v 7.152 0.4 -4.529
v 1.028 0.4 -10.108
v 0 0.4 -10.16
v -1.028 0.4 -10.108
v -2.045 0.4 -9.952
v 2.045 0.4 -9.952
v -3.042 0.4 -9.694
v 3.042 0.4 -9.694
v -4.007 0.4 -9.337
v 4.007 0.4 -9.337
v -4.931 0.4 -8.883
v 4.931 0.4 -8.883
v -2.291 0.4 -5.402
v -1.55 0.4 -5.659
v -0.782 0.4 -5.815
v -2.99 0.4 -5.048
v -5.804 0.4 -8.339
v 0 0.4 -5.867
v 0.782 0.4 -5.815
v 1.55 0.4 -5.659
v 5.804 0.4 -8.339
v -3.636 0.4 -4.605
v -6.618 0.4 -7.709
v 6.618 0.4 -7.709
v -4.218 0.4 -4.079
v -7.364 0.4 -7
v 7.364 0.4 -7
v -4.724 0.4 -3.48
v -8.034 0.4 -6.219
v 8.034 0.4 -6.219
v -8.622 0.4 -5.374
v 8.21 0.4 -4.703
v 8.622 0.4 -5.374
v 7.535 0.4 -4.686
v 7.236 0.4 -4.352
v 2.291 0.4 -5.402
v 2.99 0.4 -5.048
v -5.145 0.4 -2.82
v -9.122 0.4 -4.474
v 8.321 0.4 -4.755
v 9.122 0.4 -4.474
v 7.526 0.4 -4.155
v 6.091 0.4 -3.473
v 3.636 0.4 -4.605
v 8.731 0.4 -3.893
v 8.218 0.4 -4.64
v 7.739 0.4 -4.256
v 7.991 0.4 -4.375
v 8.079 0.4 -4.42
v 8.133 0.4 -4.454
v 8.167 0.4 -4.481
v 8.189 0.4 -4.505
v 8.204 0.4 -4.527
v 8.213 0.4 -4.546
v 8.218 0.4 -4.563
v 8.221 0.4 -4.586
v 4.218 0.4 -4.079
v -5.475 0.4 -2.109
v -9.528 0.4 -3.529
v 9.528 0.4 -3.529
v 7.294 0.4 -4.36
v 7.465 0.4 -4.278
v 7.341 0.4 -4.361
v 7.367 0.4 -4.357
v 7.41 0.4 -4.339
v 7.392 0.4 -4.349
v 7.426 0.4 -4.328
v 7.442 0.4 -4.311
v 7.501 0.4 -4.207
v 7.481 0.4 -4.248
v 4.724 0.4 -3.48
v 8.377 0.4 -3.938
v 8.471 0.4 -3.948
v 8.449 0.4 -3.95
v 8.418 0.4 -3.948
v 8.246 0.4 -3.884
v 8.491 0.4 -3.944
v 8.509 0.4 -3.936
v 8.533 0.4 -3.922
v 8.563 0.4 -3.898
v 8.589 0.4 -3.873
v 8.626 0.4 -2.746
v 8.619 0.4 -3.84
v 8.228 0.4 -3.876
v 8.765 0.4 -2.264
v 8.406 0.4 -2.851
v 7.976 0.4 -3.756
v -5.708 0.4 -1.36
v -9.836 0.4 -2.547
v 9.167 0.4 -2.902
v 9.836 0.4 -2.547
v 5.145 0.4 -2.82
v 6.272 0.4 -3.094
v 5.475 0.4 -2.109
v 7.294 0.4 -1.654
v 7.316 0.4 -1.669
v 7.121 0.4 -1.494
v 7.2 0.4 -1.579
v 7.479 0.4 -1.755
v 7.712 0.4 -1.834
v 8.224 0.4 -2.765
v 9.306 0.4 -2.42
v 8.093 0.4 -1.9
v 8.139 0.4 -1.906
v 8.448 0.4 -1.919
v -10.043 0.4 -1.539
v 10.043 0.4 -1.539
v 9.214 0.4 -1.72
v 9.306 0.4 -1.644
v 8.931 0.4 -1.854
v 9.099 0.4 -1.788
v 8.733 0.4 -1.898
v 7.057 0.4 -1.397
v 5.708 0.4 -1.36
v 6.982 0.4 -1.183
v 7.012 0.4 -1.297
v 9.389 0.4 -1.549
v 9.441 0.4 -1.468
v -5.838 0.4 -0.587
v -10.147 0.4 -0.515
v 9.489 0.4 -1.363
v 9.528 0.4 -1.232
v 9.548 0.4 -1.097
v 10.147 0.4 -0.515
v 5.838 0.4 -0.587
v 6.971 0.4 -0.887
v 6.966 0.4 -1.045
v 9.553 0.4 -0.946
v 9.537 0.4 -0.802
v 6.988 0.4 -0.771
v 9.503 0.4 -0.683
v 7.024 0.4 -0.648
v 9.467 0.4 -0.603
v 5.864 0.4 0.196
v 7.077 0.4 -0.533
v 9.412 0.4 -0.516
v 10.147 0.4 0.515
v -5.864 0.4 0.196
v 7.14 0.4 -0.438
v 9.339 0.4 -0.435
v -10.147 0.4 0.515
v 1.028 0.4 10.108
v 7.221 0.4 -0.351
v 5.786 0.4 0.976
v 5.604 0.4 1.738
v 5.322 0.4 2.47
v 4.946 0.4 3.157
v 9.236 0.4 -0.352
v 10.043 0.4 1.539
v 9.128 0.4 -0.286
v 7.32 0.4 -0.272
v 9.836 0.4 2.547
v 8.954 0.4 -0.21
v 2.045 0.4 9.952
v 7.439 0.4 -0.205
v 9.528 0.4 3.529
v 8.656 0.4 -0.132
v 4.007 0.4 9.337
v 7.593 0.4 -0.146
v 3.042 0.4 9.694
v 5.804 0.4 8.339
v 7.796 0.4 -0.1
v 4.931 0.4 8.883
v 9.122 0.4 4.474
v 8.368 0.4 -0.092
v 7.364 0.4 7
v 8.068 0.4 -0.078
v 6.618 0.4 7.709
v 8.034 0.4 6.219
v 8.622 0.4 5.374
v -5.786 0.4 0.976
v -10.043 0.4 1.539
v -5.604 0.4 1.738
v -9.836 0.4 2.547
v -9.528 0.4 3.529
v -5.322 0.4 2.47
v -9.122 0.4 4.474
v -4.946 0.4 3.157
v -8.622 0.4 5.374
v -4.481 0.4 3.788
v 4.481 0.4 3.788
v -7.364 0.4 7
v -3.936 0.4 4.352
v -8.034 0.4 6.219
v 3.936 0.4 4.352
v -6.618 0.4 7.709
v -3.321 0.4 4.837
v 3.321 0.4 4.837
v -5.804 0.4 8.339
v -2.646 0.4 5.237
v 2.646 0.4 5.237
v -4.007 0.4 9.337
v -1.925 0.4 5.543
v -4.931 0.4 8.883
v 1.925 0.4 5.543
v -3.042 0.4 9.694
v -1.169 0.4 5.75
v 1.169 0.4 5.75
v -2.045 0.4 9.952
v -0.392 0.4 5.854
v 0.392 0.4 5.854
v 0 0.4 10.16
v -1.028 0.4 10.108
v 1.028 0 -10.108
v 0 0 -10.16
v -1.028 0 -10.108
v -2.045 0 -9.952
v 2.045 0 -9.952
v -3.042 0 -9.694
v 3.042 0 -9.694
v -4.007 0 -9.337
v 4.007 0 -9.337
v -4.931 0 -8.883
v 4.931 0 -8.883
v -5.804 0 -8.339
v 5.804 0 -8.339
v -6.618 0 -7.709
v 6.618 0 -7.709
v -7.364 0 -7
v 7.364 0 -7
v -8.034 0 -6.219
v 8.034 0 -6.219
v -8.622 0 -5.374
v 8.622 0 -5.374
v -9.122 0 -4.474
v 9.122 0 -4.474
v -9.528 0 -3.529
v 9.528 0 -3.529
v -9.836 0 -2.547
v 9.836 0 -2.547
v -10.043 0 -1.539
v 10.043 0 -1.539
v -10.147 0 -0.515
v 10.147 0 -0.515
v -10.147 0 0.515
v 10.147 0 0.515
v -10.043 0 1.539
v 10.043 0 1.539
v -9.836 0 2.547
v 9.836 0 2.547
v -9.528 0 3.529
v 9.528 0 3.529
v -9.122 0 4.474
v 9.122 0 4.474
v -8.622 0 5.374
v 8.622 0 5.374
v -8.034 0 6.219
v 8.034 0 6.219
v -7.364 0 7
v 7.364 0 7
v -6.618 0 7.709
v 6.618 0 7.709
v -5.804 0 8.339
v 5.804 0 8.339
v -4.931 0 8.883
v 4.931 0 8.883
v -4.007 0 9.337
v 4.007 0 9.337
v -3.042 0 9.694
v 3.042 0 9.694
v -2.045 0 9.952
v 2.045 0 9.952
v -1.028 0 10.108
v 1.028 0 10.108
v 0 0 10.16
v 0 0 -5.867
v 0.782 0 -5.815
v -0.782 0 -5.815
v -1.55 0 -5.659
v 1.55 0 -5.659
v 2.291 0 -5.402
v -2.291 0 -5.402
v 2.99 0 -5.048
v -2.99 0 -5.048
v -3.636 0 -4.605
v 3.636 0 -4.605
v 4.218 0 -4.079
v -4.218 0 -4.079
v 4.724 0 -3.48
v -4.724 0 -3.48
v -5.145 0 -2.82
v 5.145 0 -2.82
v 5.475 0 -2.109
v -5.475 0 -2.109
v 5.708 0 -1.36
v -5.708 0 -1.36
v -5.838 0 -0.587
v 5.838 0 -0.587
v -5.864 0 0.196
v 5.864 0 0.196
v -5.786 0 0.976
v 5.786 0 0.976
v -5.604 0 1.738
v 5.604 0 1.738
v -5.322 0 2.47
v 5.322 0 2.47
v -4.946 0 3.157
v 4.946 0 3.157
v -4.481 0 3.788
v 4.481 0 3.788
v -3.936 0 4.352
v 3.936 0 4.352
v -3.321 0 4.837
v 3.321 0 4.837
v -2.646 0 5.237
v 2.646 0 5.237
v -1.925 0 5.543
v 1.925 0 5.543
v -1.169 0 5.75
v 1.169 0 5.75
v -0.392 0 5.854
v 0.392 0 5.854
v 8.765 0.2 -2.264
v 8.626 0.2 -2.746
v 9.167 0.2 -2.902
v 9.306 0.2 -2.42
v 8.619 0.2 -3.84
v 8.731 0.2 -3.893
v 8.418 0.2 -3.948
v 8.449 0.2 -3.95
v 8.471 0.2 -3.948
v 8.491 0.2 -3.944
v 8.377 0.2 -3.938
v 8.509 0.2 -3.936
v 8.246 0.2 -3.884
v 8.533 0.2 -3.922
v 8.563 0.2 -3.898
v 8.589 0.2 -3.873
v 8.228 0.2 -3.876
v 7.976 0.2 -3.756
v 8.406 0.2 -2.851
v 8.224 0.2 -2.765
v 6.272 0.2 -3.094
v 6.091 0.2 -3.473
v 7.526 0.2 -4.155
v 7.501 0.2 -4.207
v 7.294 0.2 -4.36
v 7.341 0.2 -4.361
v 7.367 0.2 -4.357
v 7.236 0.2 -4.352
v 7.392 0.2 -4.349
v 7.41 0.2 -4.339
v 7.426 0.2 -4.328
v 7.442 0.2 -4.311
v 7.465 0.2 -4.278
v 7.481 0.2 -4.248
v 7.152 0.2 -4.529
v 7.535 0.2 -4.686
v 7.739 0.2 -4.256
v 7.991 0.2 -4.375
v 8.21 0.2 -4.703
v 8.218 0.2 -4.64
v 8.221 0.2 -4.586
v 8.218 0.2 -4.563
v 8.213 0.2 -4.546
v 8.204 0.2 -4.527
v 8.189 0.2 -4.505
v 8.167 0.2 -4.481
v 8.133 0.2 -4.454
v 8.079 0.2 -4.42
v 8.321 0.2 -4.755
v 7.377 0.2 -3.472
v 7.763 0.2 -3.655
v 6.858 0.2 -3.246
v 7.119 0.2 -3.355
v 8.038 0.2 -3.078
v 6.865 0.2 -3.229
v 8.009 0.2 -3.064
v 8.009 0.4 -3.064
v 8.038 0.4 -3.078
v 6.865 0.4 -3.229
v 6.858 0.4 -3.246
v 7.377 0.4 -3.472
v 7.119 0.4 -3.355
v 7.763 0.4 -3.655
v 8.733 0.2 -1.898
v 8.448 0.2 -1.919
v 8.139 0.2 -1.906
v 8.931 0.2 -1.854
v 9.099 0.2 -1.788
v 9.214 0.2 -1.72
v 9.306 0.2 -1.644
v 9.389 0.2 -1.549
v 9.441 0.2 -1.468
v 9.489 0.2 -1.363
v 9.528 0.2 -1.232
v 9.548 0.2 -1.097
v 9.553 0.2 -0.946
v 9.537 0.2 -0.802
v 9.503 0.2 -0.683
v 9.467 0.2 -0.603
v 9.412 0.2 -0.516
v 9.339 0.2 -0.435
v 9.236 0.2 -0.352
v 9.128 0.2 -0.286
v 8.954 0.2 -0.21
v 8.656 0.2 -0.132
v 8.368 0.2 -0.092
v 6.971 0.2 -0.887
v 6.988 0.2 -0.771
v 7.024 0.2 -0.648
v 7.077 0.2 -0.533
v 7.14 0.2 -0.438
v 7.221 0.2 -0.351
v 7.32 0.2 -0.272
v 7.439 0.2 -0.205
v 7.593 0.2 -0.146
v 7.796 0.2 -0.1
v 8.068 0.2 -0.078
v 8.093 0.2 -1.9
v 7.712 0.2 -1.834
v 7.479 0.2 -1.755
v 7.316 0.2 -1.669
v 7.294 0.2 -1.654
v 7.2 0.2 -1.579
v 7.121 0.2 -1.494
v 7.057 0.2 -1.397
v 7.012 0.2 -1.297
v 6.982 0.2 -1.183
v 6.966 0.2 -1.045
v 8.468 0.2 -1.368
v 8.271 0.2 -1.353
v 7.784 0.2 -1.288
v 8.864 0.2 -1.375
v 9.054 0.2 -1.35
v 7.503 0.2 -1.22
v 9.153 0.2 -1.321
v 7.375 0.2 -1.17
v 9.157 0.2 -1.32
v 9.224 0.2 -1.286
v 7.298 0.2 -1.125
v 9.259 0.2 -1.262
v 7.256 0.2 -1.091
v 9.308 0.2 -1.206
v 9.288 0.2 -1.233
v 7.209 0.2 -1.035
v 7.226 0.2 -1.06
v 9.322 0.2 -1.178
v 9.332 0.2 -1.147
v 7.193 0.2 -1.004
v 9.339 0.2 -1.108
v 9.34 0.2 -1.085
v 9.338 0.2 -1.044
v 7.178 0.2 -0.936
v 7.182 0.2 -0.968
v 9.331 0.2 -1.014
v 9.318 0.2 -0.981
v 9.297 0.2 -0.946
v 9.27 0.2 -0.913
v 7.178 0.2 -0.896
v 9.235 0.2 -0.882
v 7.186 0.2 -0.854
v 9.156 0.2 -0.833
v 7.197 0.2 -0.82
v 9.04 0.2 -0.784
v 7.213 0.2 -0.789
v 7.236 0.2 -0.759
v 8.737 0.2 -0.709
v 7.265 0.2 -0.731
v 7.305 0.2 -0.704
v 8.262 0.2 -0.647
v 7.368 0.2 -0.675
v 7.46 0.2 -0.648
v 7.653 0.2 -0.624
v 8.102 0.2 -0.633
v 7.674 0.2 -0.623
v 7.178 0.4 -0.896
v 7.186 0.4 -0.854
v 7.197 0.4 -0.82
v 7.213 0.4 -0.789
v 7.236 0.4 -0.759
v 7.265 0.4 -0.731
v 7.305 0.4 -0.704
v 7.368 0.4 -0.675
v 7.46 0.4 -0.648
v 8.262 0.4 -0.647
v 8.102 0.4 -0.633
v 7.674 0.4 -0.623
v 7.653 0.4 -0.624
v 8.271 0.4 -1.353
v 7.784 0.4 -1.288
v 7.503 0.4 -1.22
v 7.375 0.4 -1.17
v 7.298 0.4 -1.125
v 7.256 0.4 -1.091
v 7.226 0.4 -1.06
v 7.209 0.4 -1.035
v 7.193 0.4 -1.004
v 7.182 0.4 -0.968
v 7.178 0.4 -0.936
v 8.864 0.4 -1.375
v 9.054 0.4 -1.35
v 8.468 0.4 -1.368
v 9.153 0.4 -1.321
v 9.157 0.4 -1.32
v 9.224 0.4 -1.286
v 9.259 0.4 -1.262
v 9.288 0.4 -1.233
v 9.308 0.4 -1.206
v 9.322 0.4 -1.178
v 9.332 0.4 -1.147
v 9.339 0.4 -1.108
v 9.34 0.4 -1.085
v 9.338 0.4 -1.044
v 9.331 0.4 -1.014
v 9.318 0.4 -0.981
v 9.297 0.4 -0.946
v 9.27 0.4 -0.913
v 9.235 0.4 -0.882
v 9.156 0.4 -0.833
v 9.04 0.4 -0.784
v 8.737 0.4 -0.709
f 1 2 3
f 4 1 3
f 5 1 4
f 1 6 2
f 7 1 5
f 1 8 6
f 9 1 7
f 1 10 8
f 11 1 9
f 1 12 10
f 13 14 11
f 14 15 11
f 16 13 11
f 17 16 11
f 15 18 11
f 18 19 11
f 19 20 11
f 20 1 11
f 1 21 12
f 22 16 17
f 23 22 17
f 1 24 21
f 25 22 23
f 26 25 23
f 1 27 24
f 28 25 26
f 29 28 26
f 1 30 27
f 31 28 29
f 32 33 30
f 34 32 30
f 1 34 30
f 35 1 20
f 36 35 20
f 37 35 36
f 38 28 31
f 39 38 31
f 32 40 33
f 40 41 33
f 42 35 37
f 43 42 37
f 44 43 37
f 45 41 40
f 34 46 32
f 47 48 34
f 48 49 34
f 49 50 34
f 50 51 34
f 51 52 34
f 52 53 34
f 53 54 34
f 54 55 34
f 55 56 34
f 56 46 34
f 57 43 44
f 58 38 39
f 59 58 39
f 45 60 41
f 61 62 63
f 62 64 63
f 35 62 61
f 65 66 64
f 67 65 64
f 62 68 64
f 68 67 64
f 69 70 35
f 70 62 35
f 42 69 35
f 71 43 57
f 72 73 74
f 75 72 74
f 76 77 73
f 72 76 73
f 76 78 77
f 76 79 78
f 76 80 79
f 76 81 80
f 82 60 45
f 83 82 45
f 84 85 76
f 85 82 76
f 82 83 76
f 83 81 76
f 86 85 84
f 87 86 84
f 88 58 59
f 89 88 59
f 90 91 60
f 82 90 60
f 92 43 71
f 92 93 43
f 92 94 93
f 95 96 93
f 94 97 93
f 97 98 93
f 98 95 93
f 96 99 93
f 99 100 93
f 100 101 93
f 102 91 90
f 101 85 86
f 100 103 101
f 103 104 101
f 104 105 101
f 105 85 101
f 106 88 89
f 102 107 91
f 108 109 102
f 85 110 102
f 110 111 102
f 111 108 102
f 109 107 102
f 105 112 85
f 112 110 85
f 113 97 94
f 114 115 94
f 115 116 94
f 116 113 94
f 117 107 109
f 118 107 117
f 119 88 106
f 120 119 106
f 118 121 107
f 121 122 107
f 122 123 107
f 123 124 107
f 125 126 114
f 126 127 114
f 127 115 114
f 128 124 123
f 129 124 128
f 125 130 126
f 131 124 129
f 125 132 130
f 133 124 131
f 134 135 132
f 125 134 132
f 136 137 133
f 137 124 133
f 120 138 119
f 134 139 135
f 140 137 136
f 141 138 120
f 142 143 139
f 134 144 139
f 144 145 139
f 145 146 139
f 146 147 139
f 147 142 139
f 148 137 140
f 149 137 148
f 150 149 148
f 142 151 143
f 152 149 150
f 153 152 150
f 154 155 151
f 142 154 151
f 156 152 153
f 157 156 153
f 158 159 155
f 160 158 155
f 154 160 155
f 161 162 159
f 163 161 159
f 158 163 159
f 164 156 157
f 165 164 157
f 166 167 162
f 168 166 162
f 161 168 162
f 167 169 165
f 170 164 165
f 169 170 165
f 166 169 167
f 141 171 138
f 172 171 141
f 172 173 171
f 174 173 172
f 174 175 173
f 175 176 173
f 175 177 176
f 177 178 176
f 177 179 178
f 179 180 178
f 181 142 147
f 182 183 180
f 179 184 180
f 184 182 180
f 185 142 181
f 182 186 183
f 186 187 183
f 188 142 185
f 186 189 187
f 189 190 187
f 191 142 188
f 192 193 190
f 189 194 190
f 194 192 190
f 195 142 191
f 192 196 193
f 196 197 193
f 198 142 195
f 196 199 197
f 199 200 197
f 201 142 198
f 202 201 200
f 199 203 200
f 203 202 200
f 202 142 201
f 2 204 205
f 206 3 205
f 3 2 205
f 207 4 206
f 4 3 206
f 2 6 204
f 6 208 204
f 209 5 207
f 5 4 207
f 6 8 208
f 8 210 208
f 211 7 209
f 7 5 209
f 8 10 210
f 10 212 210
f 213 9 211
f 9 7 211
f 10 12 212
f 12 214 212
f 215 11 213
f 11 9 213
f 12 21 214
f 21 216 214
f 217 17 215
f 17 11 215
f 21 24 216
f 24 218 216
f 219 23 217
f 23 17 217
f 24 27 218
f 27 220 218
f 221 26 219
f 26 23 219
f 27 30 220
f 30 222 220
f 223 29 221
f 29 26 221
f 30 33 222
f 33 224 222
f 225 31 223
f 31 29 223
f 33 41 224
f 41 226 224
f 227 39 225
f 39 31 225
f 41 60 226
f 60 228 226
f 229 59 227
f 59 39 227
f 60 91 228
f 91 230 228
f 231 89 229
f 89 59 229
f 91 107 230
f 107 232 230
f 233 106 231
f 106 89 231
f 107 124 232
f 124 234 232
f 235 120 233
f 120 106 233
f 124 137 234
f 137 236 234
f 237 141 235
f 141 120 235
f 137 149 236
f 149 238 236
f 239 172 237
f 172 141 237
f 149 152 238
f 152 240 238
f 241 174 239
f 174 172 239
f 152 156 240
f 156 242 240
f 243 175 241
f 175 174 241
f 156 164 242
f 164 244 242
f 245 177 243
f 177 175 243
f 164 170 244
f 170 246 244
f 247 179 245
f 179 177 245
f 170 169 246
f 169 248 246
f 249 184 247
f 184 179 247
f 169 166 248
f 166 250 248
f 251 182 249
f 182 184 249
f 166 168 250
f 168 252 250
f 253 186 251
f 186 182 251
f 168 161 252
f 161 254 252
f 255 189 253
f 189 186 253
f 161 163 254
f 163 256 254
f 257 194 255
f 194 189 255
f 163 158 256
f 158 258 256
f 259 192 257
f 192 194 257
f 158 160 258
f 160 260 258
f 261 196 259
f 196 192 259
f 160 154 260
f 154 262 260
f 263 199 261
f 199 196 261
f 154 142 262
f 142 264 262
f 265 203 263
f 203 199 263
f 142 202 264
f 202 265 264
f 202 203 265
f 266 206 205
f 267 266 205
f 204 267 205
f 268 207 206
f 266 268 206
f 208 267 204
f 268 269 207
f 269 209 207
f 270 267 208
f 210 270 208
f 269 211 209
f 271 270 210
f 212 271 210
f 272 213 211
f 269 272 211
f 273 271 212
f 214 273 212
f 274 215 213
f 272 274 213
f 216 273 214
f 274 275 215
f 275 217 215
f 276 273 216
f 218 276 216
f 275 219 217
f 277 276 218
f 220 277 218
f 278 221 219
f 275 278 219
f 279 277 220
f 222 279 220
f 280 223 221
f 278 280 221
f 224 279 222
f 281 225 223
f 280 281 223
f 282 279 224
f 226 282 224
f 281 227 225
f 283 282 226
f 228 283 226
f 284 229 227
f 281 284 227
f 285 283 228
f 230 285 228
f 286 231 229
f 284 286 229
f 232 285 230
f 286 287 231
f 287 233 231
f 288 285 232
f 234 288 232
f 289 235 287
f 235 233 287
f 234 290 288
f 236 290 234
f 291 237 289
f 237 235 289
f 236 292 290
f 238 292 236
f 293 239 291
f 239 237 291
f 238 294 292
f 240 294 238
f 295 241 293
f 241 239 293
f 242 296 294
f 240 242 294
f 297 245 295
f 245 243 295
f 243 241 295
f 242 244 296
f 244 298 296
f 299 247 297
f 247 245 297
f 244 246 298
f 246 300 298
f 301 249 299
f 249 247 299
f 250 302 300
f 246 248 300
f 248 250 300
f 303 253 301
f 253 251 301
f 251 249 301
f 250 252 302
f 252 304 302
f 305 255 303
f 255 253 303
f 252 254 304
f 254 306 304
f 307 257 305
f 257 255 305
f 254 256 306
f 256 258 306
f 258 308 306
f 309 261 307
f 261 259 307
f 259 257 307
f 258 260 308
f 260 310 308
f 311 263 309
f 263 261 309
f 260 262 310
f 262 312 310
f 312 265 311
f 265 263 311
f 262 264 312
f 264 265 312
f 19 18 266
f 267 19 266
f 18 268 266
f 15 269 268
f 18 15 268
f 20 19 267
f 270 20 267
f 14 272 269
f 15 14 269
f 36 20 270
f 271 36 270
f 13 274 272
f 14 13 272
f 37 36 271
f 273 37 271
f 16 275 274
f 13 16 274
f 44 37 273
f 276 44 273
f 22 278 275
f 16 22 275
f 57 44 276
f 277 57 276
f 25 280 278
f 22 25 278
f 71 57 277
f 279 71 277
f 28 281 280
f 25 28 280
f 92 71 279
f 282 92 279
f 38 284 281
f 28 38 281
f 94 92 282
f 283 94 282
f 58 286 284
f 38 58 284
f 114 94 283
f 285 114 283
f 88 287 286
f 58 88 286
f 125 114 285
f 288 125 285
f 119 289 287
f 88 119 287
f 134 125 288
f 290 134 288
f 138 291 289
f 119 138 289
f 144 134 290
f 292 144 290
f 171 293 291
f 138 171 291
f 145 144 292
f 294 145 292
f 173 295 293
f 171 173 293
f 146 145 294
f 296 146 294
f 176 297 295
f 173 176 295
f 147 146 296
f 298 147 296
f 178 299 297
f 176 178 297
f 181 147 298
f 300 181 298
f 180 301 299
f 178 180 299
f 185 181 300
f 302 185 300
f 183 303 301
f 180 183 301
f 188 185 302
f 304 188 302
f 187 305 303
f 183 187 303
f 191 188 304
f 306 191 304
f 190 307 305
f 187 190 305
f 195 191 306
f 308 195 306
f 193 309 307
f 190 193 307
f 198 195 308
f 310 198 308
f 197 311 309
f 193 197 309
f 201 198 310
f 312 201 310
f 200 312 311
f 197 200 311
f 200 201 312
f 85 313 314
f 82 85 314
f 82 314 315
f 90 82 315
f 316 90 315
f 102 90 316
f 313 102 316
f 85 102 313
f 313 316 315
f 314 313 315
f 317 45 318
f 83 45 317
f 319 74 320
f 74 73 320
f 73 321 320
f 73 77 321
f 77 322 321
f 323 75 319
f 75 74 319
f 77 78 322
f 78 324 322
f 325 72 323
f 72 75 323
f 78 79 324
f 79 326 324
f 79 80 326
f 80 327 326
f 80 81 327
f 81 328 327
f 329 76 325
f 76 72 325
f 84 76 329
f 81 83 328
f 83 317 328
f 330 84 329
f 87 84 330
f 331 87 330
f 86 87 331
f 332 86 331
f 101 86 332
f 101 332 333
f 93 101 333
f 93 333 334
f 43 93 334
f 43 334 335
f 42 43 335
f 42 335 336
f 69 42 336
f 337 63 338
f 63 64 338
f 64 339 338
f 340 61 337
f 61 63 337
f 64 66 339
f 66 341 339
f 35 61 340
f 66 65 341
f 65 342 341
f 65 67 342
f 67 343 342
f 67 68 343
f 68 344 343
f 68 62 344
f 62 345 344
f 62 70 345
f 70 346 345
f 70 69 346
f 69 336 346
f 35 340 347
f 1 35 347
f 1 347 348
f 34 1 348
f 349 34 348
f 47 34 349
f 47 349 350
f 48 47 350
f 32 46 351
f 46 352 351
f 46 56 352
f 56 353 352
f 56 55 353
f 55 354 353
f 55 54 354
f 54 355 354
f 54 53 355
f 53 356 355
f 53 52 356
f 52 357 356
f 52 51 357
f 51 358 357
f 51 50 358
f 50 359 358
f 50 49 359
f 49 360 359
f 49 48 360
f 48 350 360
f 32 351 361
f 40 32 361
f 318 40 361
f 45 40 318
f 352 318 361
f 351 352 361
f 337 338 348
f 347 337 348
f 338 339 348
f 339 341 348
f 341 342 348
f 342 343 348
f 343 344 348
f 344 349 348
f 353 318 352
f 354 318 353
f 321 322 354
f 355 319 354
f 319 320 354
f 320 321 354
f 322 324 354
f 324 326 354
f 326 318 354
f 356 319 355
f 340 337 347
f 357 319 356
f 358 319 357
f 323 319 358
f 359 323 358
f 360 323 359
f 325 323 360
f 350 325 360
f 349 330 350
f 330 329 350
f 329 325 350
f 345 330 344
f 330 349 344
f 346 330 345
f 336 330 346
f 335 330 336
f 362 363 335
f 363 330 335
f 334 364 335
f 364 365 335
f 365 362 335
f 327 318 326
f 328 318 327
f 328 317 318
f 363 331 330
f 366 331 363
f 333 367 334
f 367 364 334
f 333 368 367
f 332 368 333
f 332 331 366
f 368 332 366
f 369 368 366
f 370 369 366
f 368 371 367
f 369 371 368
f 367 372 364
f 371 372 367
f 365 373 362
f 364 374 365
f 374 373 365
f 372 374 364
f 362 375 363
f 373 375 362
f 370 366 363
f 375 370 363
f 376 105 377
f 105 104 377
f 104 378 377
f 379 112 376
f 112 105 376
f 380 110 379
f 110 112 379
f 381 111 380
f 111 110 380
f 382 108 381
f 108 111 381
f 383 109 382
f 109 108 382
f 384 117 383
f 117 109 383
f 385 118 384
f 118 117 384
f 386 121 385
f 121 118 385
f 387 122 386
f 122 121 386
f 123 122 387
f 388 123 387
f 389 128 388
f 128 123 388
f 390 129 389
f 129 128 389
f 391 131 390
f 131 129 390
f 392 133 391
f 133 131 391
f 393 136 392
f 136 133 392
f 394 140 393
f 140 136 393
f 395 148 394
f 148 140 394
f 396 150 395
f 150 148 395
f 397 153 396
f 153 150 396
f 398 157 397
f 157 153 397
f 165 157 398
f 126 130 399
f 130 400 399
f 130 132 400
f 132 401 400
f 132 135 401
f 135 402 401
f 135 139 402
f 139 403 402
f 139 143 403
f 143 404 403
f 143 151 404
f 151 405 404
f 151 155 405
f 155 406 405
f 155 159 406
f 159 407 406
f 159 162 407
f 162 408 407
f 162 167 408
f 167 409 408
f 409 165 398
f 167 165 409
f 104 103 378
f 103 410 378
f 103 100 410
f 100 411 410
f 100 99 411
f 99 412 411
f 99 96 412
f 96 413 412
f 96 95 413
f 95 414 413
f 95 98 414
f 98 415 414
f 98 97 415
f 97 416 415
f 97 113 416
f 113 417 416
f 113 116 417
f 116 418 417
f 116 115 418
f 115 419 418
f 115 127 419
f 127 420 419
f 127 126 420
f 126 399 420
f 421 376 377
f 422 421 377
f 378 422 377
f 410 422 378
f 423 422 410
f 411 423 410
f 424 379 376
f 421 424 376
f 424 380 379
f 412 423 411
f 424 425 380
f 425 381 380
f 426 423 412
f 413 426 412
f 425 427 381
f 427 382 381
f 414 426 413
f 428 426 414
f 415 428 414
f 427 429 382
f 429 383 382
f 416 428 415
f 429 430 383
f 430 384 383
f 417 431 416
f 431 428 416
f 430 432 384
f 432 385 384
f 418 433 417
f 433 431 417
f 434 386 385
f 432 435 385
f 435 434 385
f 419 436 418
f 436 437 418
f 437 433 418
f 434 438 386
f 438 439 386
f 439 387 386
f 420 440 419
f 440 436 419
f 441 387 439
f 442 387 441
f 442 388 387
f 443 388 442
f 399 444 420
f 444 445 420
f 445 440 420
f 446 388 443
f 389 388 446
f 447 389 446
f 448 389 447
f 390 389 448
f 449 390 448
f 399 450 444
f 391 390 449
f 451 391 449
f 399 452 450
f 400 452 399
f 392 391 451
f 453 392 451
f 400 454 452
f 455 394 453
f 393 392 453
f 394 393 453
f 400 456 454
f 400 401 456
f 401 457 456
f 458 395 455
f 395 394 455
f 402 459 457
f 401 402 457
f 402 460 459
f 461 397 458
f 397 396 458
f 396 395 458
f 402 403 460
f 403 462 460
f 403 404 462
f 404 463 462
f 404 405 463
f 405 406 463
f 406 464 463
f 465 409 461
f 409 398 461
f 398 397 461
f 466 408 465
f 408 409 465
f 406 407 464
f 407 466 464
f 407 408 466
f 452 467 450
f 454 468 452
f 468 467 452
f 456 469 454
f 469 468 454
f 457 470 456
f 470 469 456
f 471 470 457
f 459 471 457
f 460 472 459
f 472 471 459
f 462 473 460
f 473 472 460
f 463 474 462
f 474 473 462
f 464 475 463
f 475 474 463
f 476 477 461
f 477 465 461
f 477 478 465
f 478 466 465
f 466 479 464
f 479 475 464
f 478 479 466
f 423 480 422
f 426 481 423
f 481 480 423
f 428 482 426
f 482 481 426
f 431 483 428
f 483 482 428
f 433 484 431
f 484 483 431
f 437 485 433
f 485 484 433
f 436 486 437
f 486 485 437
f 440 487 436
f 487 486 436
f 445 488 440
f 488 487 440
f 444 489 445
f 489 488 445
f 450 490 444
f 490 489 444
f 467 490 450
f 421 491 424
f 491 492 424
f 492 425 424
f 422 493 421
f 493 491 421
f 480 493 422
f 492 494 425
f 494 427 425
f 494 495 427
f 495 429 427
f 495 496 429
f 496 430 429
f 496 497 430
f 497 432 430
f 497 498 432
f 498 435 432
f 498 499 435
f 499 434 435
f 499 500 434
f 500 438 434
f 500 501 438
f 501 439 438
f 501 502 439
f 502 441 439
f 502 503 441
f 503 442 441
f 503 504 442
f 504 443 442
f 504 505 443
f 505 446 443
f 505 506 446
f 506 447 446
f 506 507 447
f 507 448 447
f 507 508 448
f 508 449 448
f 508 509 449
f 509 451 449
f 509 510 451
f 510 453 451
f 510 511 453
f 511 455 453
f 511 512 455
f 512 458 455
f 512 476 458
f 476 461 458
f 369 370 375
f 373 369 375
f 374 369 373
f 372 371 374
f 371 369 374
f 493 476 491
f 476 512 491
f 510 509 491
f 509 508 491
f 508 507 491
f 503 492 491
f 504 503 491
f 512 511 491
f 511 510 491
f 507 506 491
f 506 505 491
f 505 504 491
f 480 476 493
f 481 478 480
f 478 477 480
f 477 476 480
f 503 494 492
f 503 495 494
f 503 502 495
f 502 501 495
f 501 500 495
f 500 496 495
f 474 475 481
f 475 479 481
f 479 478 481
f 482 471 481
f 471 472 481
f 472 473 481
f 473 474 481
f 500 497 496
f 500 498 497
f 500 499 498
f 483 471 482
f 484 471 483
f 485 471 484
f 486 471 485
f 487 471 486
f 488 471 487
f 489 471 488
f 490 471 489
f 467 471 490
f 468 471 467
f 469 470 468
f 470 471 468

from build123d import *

# Parameters (mm, degrees)
SKETCH1_R           = 10.16
BOSS_EXTRUDE1_DEPTH = 0.4
SKETCH2_R           = 5.8674
CUT_EXTRUDE1_DEPTH  = 15.373976485
CUT_EXTRUDE2_DEPTH  = 0.2


with BuildPart() as part:
    # Sketch1 → Boss-Extrude1 (new body)
    with BuildSketch(Plane(origin=(0, 0, 0), x_dir=(1, 0, 0), z_dir=(0, 1, 0))):
        with Locations(Location((0, 0, 0), (0, 0, 270))):
            Circle(SKETCH1_R)
    extrude(amount=BOSS_EXTRUDE1_DEPTH)

    # Sketch2 → Cut-Extrude1 (cut, through all)
    with BuildSketch(Plane(origin=(0, 0, 0), x_dir=(-1, 0, 0), z_dir=(0, -1, 0))):
        with Locations(Location((0, 0, 0), (0, 0, 90))):
            Circle(SKETCH2_R)
    extrude(amount=-CUT_EXTRUDE1_DEPTH, mode=Mode.SUBTRACT)

    # Sketch4 → Cut-Extrude2 (cut)
    # profile 1 of 3: a face of its own
    with BuildSketch(Plane(origin=(0, 0.4, 0), x_dir=(1, 0, 0), z_dir=(0, 1, 0))):
        with BuildLine():
            add(Edge.make_bspline(
                [(9.548097961, 1.097469618), (9.550055121, 1.073968459), (9.553888422, 1.027939027), (9.554390186, 0.959782463), (9.550385332, 0.894277853), (9.543161692, 0.830950704), (9.529924907, 0.770564877), (9.514466283, 0.712015933), (9.493128413, 0.656576452), (9.46859878, 0.603112304), (9.438240587, 0.552630443), (9.403712845, 0.504076224), (9.363797313, 0.45815636), (9.318530635, 0.414953146), (9.268531255, 0.373440711), (9.212574881, 0.33528609), (9.152201079, 0.298537745), (9.086625336, 0.264527216), (9.015771284, 0.233035098), (8.939390022, 0.204332005), (8.85742296, 0.178713648), (8.770070519, 0.155516755), (8.677361705, 0.135213545), (8.579160422, 0.117686573), (8.475476658, 0.102717037), (8.40435551, 0.095299195), (8.367946051, 0.091501736)],
                knots=[0, 0, 0, 0, 0.959744186, 1.879757445, 2.771360733, 3.630433483, 4.470974874, 5.285729423, 6.092861057, 6.885868194, 7.677321799, 8.486806591, 9.30863703, 10.149710703, 11.031725224, 11.950856355, 12.90393232, 13.90755666, 14.955572763, 16.058595042, 17.227175211, 18.449982035, 19.736657795, 21.08935819, 22.509938377, 24, 24, 24, 24], degree=3))
            add(Edge.make_bspline(
                [(8.367946051, 0.091501736), (8.333424141, 0.088400085), (8.265746233, 0.082319503), (8.165677998, 0.079231171), (8.06952646, 0.077278789), (7.977053794, 0.081155481), (7.88830334, 0.087048161), (7.803306671, 0.098811355), (7.721736112, 0.11170348), (7.644437516, 0.130414375), (7.570830347, 0.151553041), (7.501385565, 0.177166916), (7.435509874, 0.205414386), (7.374430468, 0.238456025), (7.316418733, 0.273272083), (7.263625883, 0.313436527), (7.214343769, 0.356439358), (7.169055169, 0.402772658), (7.128001276, 0.452365342), (7.092229736, 0.505851447), (7.060066365, 0.561822042), (7.033139082, 0.62118597), (7.010403647, 0.683257406), (6.992100676, 0.748449734), (6.979079533, 0.816930644), (6.973464566, 0.863715974), (6.970615322, 0.887456597)],
                knots=[0, 0, 0, 0, 1.373964495, 2.693565985, 3.968553968, 5.185962309, 6.362128109, 7.493465967, 8.586945452, 9.634820339, 10.644545933, 11.621736809, 12.567827687, 13.483617295, 14.373243629, 15.247464012, 16.109610849, 16.964804151, 17.813643683, 18.658252232, 19.51307309, 20.370435758, 21.2393278, 22.1319618, 23.052087694, 24, 24, 24, 24], degree=3))
            add(Edge.make_bspline(
                [(6.970615322, 0.887456597), (6.968008966, 0.924187003), (6.962939891, 0.995623618), (6.968278191, 1.100187869), (6.982752186, 1.198611099), (7.008071475, 1.290725833), (7.04420274, 1.376531671), (7.090804819, 1.455803983), (7.147686668, 1.528817336), (7.215087504, 1.595277348), (7.293061596, 1.655917856), (7.382222508, 1.709460065), (7.481878053, 1.757653835), (7.592113819, 1.79993908), (7.713743669, 1.835405319), (7.845672722, 1.865615588), (7.988759307, 1.889211353), (8.087867057, 1.899976367), (8.139191711, 1.905551215)],
                knots=[0, 0, 0, 0, 0.999181933, 1.943299396, 2.836688392, 3.696188225, 4.530240668, 5.35776012, 6.186181664, 7.036493394, 7.921805995, 8.862264049, 9.85532249, 10.92466266, 12.06451709, 13.293082439, 14.598176172, 16, 16, 16, 16], degree=3))
            add(Edge.make_bspline(
                [(8.139191711, 1.905551215), (8.192076162, 1.909791843), (8.294429148, 1.917999186), (8.443873987, 1.920688736), (8.584142548, 1.915477705), (8.715338175, 1.902057842), (8.837357513, 1.88004073), (8.950319838, 1.850206381), (9.053768445, 1.810845774), (9.148284982, 1.764097891), (9.233267264, 1.708869395), (9.308278218, 1.645097177), (9.373256878, 1.573236551), (9.429154226, 1.493984326), (9.473668524, 1.40587554), (9.508962331, 1.310266213), (9.535431633, 1.206847242), (9.543804449, 1.134545408), (9.548097961, 1.097469618)],
                knots=[0, 0, 0, 0, 1.381791394, 2.674330027, 3.891007168, 5.036428095, 6.106690612, 7.117972597, 8.075364145, 8.985087285, 9.859944246, 10.708764313, 11.542333244, 12.37753583, 13.227367402, 14.105765436, 15.028652003, 16, 16, 16, 16], degree=3))
        make_face()
        with BuildLine():
            add(Edge.make_bspline(
                [(8.261561502, 0.646575521), (8.294456414, 0.649821856), (8.358447364, 0.656137), (8.451849855, 0.666375212), (8.539943244, 0.678399643), (8.622970291, 0.689310262), (8.700369127, 0.702561563), (8.772745842, 0.714744092), (8.839767332, 0.728682456), (8.901986015, 0.742841894), (8.959241455, 0.758465051), (9.012361258, 0.774117371), (9.061070952, 0.791611955), (9.106204362, 0.808792317), (9.147102593, 0.82752915), (9.183769707, 0.847406728), (9.216251369, 0.868414663), (9.253841893, 0.896112176), (9.292161978, 0.93470985), (9.324279971, 0.987899004), (9.341430959, 1.046837895), (9.339946559, 1.087265986), (9.33918737, 1.107942708)],
                knots=[0, 0, 0, 0, 1.559939649, 3.034573339, 4.433834629, 5.755759396, 6.985974602, 8.139252337, 9.219098498, 10.216076828, 11.149973839, 12.019543174, 12.828554085, 13.591800542, 14.297942877, 14.949827997, 15.558345547, 16.121961591, 17.152098737, 18.100852136, 19.028691373, 20, 20, 20, 20], degree=3))
            add(Edge.make_bspline(
                [(9.33918737, 1.107942708), (9.337640701, 1.119206946), (9.334605741, 1.141310259), (9.325241811, 1.172734036), (9.31176771, 1.201590004), (9.293873227, 1.227812058), (9.271323703, 1.251644445), (9.244711652, 1.274008937), (9.212873286, 1.293547355), (9.176637524, 1.311985124), (9.135144771, 1.328439431), (9.087936038, 1.342704924), (9.03486756, 1.354683111), (8.975778101, 1.364445967), (8.910136784, 1.372235916), (8.83765802, 1.377138278), (8.757841853, 1.378355959), (8.671282468, 1.377765829), (8.578631856, 1.375199821), (8.480728235, 1.369181036), (8.377787239, 1.362348998), (8.307484328, 1.355956026), (8.271483377, 1.352682292)],
                knots=[0, 0, 0, 0, 0.573306212, 1.12497326, 1.647738541, 2.175091007, 2.719775143, 3.2992746, 3.924540973, 4.60063781, 5.349821626, 6.17422386, 7.087672211, 8.09400518, 9.19609116, 10.423188986, 11.759030231, 13.224456304, 14.792560164, 16.436793354, 18.175341204, 20, 20, 20, 20], degree=3))
            add(Edge.make_bspline(
                [(8.271483377, 1.352682292), (8.21872765, 1.347383023), (8.117512767, 1.337216074), (7.972444719, 1.319230054), (7.840842152, 1.298928139), (7.722599788, 1.277041996), (7.617710788, 1.253595709), (7.525847566, 1.228398034), (7.447076026, 1.201897522), (7.380933906, 1.17356744), (7.325919961, 1.144098193), (7.28035653, 1.113538037), (7.243905652, 1.081205208), (7.215355923, 1.047943532), (7.195791651, 1.012267519), (7.182777989, 0.975237705), (7.176443594, 0.935977323), (7.177754028, 0.909335291), (7.178423481, 0.895724826)],
                knots=[0, 0, 0, 0, 1.987774042, 3.813658246, 5.479624312, 6.979295976, 8.321212524, 9.507797241, 10.549079436, 11.434594746, 12.202068828, 12.886080949, 13.486172645, 14.024182533, 14.520633445, 15.002090577, 15.490203663, 16, 16, 16, 16], degree=3))
            add(Edge.make_bspline(
                [(7.178423481, 0.895724826), (7.18057015, 0.880150586), (7.184763265, 0.849729237), (7.201322999, 0.807002831), (7.225450517, 0.768795664), (7.257660898, 0.735091078), (7.298058684, 0.706441494), (7.346173767, 0.682368855), (7.401776004, 0.661890172), (7.465624388, 0.646320653), (7.537344011, 0.634570729), (7.61681871, 0.625748345), (7.704218452, 0.620988642), (7.799654696, 0.620157169), (7.90331396, 0.622569433), (8.015409368, 0.627671035), (8.13581459, 0.635163946), (8.218766894, 0.642691896), (8.261561502, 0.646575521)],
                knots=[0, 0, 0, 0, 0.622531695, 1.215998619, 1.802972471, 2.4067536, 3.054715399, 3.759494987, 4.537400922, 5.402670149, 6.364594255, 7.421637757, 8.576224243, 9.838461732, 11.210360544, 12.692839009, 14.293854979, 16, 16, 16, 16], degree=3))
        make_face(mode=Mode.SUBTRACT)
    # profile 2 of 3: a face of its own
    with BuildSketch(Plane(origin=(0, 0.4, 0), x_dir=(1, 0, 0), z_dir=(0, 1, 0))):
        Polygon((8.625595186, 2.745808752), (9.166888588, 2.901802676), (9.305794838, 2.420040523), (8.764501436, 2.264046599), align=None)
    # profile 3 of 3: a face of its own
    with BuildSketch(Plane(origin=(0, 0.4, 0), x_dir=(1, 0, 0), z_dir=(0, 1, 0))):
        with BuildLine():
            add(Edge.make_bspline(
                [(8.619317249, 3.839927612), (8.605158045, 3.855725986), (8.579584678, 3.884259905), (8.53958882, 3.918625978), (8.500604376, 3.943003738), (8.45722757, 3.951692461), (8.409998964, 3.948170804), (8.357468269, 3.932017987), (8.295899496, 3.907532011), (8.252095124, 3.887046328), (8.227954402, 3.875756605)],
                knots=[0, 0, 0, 0, 1.145744956, 2.069364517, 2.848247227, 3.600500716, 4.416765074, 5.385816981, 6.559315799, 8, 8, 8, 8], degree=3))
            Line((8.227954402, 3.875756605), (7.97604902, 3.75614289))
            Line((7.97604902, 3.75614289), (8.405996937, 2.851047404))
            Line((8.405996937, 2.851047404), (8.22354468, 2.764506605))
            Line((8.22354468, 2.764506605), (6.271691381, 3.093582126))
            Line((6.271691381, 3.093582126), (6.091443986, 3.473369452))
            Line((6.091443986, 3.473369452), (7.526257354, 4.154671536))
            Line((7.526257354, 4.154671536), (7.501452666, 4.207036987))
            add(Edge.make_bspline(
                [(7.501452666, 4.207036987), (7.495284595, 4.219752104), (7.483913694, 4.24319255), (7.467211949, 4.274824047), (7.45117189, 4.299250025), (7.432395351, 4.323142031), (7.404957274, 4.344998672), (7.371590737, 4.356451311), (7.340311976, 4.361880797), (7.310475748, 4.360944463), (7.275108034, 4.358439211), (7.249890175, 4.354257285), (7.236318118, 4.352006605)],
                knots=[0, 0, 0, 0, 1.244291285, 2.293863494, 3.146294454, 3.81324823, 4.96527056, 6.173175222, 6.877899736, 7.751404011, 8.789822906, 10, 10, 10, 10], degree=3))
            Line((7.236318118, 4.352006605), (7.15198218, 4.529497925))
            Line((7.15198218, 4.529497925), (7.534525583, 4.686043063))
            Line((7.534525583, 4.686043063), (7.739026451, 4.255543931))
            Line((7.739026451, 4.255543931), (7.990931833, 4.375157647))
            add(Edge.make_bspline(
                [(7.990931833, 4.375157647), (8.004889816, 4.382148034), (8.031410843, 4.395430199), (8.069069943, 4.414115601), (8.100867186, 4.433198132), (8.135895536, 4.454798796), (8.170657619, 4.48180517), (8.200545356, 4.517905625), (8.218913798, 4.556617267), (8.221958568, 4.600329456), (8.217615413, 4.648907387), (8.212529795, 4.683673908), (8.209764298, 4.702579522)],
                knots=[0, 0, 0, 0, 1.05478597, 2.004158271, 2.838732487, 3.558503911, 4.785687942, 5.791874313, 6.703150114, 7.627104706, 8.709648202, 10, 10, 10, 10], degree=3))
            Line((8.209764298, 4.702579522), (8.321109784, 4.755496188))
            Line((8.321109784, 4.755496188), (8.730662736, 3.892844279))
            Line((8.730662736, 3.892844279), (8.619317249, 3.839927612))
        make_face()
        with BuildLine():
            Line((8.037785131, 3.077596883), (7.763279923, 3.655270494))
            Line((7.763279923, 3.655270494), (7.376878013, 3.471715806))
            add(Edge.make_bspline(
                [(7.376878013, 3.471715806), (7.293366138, 3.433055727), (7.122021893, 3.353735487), (6.947231905, 3.282323746), (6.857633222, 3.245717543)],
                knots=[0, 0, 0, 0, 0.974784713, 2, 2, 2, 2], degree=3))
            Line((6.857633222, 3.245717543), (6.865350236, 3.229181084))
            Line((6.865350236, 3.229181084), (8.009121937, 3.063816501))
            Line((8.009121937, 3.063816501), (8.037785131, 3.077596883))
        make_face(mode=Mode.SUBTRACT)
    extrude(amount=-CUT_EXTRUDE2_DEPTH, mode=Mode.SUBTRACT)


solid = part.part
